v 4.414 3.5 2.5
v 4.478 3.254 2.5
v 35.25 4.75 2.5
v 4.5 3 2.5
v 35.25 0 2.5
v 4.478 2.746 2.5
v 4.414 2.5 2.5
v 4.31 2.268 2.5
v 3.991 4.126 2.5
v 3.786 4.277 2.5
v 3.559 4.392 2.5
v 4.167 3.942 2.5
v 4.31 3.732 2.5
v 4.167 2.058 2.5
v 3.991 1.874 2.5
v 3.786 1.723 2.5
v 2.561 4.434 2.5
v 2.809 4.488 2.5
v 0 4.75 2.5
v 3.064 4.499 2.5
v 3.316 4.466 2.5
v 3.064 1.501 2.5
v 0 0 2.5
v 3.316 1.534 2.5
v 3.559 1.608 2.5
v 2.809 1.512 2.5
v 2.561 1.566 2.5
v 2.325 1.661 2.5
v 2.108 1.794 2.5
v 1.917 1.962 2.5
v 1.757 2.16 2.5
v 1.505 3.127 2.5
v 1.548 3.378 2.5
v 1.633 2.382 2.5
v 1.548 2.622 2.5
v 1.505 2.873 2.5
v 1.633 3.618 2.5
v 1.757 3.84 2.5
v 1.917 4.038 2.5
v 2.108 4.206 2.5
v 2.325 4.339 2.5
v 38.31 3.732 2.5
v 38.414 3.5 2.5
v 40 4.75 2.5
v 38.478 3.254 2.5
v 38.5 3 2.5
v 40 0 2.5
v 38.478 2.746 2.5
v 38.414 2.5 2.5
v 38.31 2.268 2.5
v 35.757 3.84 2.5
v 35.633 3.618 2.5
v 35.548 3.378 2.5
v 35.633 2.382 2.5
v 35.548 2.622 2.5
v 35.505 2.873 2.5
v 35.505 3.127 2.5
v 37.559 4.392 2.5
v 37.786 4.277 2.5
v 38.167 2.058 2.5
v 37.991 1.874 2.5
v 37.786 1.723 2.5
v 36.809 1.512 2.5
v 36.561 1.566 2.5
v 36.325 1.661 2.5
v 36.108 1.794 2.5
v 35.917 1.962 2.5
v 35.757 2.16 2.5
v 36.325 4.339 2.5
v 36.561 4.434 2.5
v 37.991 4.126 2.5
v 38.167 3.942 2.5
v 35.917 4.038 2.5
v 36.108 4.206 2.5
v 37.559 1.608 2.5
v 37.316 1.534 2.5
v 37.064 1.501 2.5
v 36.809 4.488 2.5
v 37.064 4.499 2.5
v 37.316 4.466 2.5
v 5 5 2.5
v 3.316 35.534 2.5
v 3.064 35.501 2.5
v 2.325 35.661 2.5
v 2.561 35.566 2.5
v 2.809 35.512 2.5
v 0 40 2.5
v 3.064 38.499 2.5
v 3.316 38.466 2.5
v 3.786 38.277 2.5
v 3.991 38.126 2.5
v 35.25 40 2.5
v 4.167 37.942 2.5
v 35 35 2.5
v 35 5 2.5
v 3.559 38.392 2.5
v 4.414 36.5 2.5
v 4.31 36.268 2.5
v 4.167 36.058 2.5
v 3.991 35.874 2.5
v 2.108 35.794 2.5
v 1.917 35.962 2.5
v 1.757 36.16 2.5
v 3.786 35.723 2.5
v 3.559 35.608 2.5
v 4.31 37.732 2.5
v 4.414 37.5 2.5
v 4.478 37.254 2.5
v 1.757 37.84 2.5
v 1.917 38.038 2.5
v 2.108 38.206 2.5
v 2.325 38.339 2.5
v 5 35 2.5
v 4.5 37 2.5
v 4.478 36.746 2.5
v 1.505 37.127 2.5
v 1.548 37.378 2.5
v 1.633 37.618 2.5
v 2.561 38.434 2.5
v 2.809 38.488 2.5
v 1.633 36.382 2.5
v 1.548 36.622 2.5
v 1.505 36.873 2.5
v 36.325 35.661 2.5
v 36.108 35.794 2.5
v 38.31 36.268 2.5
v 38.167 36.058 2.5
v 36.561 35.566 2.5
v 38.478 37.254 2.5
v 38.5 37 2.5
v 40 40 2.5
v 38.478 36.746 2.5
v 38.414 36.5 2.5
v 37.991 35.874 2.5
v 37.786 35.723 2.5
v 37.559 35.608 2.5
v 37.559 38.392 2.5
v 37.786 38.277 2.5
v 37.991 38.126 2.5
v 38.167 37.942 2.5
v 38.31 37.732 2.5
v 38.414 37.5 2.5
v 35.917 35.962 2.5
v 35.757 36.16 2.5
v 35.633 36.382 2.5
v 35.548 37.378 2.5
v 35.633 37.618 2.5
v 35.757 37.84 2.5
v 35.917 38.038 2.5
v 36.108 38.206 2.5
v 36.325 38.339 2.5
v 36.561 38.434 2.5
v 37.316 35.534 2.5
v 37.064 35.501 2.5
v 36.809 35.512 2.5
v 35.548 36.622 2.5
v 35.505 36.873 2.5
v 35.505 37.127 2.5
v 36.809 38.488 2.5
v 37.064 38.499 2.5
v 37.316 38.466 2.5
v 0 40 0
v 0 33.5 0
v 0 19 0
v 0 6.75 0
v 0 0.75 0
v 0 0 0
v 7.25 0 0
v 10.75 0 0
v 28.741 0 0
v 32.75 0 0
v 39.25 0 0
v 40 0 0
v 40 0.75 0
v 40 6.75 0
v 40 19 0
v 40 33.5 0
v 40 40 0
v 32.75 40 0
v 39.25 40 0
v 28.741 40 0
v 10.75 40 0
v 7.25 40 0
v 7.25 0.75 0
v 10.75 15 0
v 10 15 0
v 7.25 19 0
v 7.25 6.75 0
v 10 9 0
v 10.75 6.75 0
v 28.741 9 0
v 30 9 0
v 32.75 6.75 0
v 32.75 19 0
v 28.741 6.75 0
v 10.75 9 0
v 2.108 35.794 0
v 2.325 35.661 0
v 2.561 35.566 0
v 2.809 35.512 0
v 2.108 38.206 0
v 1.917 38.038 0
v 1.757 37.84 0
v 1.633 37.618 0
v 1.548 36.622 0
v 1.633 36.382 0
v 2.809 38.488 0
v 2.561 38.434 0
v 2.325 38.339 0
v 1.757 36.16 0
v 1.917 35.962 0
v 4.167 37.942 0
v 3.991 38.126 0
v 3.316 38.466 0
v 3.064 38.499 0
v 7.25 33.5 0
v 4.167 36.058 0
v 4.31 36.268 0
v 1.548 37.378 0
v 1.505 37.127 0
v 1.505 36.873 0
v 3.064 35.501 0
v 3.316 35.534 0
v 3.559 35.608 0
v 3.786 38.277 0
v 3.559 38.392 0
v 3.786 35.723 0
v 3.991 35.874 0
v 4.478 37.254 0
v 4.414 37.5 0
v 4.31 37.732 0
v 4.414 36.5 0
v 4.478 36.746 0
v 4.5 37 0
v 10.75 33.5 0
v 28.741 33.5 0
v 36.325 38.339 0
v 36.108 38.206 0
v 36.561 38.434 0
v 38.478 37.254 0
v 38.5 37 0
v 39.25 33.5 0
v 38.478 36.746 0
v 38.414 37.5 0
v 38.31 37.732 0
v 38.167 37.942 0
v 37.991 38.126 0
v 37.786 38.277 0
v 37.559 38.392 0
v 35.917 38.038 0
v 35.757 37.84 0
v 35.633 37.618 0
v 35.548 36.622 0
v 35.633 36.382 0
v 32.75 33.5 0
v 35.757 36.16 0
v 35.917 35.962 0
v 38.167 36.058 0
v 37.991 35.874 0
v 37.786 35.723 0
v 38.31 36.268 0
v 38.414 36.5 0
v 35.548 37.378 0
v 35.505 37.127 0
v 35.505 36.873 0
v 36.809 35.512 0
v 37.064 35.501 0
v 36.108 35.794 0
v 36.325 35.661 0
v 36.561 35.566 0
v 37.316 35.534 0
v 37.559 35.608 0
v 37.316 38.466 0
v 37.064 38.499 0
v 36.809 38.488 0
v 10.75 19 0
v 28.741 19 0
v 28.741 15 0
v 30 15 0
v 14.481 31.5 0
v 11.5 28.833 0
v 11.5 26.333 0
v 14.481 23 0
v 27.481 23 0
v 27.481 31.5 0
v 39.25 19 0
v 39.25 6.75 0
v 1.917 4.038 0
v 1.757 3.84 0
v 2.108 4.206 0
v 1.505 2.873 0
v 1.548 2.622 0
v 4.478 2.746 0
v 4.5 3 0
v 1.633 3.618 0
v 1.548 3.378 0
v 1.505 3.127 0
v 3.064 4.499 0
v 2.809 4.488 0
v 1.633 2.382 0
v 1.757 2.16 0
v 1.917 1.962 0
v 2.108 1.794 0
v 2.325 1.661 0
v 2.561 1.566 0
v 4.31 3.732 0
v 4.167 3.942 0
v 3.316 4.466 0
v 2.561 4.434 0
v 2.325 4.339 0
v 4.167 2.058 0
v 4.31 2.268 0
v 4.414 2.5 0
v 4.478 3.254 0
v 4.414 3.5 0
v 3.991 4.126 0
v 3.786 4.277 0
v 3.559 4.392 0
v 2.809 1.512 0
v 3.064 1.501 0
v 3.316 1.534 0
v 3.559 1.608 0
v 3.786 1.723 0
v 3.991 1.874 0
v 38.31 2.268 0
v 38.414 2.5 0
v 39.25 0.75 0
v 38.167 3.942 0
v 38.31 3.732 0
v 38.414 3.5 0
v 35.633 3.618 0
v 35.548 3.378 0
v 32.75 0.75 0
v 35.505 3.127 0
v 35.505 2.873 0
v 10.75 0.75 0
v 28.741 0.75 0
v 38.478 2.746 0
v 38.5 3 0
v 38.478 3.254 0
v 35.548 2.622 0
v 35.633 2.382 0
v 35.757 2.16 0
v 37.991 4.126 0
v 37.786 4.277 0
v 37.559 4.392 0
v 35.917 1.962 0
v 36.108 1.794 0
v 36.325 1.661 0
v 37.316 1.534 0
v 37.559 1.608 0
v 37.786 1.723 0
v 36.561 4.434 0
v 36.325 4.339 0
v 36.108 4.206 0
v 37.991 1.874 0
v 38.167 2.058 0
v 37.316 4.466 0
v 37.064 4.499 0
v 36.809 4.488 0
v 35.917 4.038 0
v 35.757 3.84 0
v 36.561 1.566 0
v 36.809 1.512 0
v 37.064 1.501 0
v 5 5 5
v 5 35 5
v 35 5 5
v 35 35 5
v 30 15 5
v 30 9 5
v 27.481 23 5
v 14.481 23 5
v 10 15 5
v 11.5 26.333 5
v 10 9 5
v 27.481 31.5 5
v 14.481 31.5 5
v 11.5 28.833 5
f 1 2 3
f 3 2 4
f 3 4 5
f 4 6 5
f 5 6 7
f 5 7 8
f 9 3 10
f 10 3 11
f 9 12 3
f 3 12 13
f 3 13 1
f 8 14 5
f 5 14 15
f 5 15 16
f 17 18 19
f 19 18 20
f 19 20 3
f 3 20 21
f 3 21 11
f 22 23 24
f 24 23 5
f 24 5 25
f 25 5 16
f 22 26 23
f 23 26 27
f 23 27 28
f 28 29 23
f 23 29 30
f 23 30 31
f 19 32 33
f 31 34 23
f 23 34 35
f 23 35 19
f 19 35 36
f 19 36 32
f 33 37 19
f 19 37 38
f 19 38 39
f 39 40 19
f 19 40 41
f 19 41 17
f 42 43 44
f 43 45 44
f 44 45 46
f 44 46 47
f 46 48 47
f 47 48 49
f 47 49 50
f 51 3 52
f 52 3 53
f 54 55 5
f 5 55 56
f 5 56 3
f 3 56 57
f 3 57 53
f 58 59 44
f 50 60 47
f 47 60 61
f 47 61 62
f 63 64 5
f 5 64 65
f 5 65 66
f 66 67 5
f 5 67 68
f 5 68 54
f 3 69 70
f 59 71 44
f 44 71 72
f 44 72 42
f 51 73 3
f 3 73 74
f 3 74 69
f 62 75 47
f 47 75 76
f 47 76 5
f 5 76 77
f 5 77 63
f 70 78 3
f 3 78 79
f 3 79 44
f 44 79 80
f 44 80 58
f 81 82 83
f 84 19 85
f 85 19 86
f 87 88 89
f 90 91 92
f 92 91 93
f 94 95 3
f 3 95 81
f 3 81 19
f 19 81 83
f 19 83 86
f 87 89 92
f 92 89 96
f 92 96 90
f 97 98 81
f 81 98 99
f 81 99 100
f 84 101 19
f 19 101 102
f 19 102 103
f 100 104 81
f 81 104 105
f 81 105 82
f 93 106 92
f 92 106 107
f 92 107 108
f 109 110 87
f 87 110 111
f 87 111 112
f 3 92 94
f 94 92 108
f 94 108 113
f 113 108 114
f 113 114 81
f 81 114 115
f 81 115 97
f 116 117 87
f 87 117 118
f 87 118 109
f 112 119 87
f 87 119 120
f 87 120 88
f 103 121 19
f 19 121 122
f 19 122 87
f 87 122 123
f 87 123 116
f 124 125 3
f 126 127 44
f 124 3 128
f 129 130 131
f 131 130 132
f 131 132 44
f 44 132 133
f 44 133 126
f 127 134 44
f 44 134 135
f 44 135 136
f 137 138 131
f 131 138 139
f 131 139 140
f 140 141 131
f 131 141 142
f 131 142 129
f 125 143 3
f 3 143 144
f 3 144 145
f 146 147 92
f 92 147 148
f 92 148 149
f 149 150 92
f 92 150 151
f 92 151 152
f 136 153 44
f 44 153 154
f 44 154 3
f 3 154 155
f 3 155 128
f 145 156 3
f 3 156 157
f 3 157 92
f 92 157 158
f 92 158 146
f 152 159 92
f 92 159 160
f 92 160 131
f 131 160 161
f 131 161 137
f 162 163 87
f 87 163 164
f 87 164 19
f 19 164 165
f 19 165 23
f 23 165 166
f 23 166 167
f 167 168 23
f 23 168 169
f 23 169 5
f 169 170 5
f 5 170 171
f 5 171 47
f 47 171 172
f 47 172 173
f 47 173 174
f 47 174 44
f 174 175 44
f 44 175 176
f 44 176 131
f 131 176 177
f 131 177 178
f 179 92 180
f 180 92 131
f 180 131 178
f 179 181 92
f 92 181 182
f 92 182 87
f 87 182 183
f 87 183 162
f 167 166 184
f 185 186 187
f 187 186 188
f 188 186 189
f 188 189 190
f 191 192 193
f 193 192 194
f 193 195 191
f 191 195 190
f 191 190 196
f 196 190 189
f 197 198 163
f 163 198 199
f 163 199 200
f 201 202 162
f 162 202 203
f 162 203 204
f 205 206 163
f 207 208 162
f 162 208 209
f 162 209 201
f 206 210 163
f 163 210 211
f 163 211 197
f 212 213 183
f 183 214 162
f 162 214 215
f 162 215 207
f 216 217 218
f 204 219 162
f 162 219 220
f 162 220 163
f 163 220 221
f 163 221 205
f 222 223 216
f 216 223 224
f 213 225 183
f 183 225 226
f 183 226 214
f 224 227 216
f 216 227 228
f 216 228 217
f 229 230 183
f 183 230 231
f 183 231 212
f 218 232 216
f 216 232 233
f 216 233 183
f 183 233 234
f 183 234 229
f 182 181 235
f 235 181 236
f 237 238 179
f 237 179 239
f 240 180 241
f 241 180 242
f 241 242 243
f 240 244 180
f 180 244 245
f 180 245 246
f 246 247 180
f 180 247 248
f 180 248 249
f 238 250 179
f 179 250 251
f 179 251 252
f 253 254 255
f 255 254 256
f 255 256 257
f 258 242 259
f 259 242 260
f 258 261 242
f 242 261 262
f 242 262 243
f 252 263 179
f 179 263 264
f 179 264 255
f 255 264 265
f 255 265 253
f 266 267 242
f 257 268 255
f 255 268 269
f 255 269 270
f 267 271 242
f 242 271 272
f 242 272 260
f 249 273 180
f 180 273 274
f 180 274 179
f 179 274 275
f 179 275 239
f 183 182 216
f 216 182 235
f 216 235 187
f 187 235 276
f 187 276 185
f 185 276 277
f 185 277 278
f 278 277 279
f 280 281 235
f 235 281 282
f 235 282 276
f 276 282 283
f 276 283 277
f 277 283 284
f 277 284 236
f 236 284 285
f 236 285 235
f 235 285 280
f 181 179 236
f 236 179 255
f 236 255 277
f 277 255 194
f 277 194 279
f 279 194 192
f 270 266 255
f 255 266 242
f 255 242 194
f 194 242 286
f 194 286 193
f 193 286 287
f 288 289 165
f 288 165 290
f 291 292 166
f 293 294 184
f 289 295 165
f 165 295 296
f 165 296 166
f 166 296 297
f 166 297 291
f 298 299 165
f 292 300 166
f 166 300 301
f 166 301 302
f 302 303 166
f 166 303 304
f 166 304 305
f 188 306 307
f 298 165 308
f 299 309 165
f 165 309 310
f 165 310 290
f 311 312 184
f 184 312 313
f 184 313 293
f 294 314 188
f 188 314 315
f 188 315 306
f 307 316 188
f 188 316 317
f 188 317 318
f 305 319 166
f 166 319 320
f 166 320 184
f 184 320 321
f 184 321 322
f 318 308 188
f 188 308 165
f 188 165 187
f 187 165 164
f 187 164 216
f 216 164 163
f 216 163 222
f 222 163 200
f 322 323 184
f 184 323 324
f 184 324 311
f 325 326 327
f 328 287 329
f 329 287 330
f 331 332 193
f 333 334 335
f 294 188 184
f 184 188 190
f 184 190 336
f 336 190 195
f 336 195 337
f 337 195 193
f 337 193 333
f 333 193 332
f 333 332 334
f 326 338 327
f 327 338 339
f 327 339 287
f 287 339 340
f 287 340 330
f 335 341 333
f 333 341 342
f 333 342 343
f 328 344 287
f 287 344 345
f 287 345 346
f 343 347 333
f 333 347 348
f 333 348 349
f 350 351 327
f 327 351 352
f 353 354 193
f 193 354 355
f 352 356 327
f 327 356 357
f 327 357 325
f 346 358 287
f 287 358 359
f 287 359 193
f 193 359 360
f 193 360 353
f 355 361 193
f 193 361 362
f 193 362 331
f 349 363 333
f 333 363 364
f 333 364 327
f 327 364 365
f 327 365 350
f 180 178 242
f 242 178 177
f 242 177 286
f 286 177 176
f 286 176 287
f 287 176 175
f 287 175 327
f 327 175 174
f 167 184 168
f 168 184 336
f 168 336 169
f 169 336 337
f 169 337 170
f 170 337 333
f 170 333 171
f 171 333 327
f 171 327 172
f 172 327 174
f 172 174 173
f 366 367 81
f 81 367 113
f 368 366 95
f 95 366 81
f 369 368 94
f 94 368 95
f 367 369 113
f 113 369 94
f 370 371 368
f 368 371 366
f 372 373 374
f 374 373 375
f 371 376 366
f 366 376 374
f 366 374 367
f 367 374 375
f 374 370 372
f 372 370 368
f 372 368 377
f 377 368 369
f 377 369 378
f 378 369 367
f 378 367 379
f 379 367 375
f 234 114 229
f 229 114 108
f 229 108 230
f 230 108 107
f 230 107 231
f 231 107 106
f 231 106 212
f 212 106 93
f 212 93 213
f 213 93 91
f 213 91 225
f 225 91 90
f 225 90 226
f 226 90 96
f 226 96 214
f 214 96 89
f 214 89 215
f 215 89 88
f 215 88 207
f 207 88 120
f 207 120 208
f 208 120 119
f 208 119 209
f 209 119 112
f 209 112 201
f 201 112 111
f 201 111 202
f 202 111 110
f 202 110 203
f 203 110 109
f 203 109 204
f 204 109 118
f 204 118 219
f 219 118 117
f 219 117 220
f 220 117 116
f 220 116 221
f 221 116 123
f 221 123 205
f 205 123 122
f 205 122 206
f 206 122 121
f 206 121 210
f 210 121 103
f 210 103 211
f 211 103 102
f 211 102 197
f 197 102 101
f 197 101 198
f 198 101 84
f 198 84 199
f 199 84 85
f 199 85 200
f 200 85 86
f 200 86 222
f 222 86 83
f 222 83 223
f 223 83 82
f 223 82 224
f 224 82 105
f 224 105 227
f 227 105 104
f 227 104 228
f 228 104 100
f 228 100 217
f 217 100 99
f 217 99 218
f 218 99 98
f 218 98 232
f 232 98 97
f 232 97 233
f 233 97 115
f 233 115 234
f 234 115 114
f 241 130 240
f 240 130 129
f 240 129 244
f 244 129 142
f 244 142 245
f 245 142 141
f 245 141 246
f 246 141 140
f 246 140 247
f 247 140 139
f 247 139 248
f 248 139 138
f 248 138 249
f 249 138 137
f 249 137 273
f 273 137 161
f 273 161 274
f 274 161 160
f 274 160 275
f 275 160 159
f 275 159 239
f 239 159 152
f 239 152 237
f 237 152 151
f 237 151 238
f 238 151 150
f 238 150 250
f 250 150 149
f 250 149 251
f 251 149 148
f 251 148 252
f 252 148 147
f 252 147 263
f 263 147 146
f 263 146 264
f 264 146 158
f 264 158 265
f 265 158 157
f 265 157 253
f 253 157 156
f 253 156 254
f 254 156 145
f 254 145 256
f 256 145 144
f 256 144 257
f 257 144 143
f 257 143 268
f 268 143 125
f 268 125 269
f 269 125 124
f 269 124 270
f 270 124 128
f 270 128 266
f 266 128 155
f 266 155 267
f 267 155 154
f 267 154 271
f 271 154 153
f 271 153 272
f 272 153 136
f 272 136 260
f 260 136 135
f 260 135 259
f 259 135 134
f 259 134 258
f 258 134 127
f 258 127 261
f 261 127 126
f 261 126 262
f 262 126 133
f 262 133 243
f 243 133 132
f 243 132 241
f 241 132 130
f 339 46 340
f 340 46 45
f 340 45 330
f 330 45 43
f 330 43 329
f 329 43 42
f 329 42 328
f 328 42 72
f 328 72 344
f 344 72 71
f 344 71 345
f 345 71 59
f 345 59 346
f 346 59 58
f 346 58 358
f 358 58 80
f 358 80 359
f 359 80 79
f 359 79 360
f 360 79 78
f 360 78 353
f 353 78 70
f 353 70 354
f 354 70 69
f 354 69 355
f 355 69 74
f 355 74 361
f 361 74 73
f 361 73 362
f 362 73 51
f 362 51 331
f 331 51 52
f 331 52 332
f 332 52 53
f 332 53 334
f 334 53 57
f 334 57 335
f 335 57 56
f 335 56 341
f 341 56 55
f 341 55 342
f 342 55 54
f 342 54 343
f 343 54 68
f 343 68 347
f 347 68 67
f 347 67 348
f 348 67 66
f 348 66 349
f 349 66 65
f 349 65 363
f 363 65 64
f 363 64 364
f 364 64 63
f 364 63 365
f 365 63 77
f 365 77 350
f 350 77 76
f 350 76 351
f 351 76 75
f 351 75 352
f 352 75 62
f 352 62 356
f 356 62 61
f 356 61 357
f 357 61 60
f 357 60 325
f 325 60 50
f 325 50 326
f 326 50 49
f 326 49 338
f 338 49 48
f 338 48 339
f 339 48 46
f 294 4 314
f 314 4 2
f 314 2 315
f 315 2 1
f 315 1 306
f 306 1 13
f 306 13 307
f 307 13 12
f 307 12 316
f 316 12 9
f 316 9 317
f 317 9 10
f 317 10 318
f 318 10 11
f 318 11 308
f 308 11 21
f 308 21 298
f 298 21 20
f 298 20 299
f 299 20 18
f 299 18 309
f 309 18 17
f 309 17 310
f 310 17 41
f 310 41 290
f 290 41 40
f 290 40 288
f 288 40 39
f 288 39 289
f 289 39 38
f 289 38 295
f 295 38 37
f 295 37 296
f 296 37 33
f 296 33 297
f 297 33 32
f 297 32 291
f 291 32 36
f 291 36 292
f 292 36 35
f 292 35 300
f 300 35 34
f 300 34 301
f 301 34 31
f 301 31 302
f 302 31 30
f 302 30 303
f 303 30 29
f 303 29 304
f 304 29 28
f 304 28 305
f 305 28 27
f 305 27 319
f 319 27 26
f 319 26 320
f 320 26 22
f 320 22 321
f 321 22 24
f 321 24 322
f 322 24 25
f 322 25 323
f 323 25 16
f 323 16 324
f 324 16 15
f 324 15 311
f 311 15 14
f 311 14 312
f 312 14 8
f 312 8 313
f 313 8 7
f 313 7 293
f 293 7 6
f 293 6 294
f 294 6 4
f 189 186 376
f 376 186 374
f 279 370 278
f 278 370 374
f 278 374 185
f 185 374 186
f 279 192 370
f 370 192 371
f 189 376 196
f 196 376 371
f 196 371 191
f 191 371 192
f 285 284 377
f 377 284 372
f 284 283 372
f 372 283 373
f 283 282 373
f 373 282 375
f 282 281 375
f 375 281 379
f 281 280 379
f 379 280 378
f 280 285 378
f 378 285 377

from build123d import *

# Parameters (mm, degrees)
SKETCH1_W           = 40
SKETCH1_H           = 40
BOSS_EXTRUDE2_DEPTH = 2.5
SKETCH2_W           = 30
SKETCH2_H           = 30
BOSS_EXTRUDE3_DEPTH = 2.5
SKETCH3_R           = 1.5
CUT_EXTRUDE1_DEPTH  = 2.5
SKETCH4_W           = 20
SKETCH4_H           = 6
CUT_EXTRUDE2_DEPTH  = 5


with BuildPart() as part:
    # Sketch1 → Boss-Extrude2 (new body)
    with BuildSketch(Plane.XY):
        with Locations((20, 20)):
            Rectangle(SKETCH1_W, SKETCH1_H)
    extrude(amount=BOSS_EXTRUDE2_DEPTH)

    # Sketch2 → Boss-Extrude3 (add)
    with BuildSketch(Plane.XY.offset(2.5)):
        with Locations((20, 20)):
            Rectangle(SKETCH2_W, SKETCH2_H)
    extrude(amount=BOSS_EXTRUDE3_DEPTH)

    # Sketch3 → Cut-Extrude1 (cut)
    with BuildSketch(Plane.XY.offset(2.5)):
        with Locations((3, 37)):
            Circle(SKETCH3_R)
        with Locations((37, 37)):
            Circle(SKETCH3_R)
        with Locations((37, 3)):
            Circle(SKETCH3_R)
        with Locations((3, 3)):
            Circle(SKETCH3_R)
    extrude(amount=-CUT_EXTRUDE1_DEPTH, mode=Mode.SUBTRACT)

    # Sketch4 → Cut-Extrude2 (cut)
    with BuildSketch(Plane.XY.offset(5)):
        Polygon((27.48142397, 31.5), (14.48142397, 31.5), (11.5, 28.833333333), (11.5, 26.333333333), (14.48142397, 23), (27.48142397, 23), align=None)
        with Locations((20, 12)):
            Rectangle(SKETCH4_W, SKETCH4_H)
    extrude(amount=-CUT_EXTRUDE2_DEPTH, mode=Mode.SUBTRACT)


solid = part.part
